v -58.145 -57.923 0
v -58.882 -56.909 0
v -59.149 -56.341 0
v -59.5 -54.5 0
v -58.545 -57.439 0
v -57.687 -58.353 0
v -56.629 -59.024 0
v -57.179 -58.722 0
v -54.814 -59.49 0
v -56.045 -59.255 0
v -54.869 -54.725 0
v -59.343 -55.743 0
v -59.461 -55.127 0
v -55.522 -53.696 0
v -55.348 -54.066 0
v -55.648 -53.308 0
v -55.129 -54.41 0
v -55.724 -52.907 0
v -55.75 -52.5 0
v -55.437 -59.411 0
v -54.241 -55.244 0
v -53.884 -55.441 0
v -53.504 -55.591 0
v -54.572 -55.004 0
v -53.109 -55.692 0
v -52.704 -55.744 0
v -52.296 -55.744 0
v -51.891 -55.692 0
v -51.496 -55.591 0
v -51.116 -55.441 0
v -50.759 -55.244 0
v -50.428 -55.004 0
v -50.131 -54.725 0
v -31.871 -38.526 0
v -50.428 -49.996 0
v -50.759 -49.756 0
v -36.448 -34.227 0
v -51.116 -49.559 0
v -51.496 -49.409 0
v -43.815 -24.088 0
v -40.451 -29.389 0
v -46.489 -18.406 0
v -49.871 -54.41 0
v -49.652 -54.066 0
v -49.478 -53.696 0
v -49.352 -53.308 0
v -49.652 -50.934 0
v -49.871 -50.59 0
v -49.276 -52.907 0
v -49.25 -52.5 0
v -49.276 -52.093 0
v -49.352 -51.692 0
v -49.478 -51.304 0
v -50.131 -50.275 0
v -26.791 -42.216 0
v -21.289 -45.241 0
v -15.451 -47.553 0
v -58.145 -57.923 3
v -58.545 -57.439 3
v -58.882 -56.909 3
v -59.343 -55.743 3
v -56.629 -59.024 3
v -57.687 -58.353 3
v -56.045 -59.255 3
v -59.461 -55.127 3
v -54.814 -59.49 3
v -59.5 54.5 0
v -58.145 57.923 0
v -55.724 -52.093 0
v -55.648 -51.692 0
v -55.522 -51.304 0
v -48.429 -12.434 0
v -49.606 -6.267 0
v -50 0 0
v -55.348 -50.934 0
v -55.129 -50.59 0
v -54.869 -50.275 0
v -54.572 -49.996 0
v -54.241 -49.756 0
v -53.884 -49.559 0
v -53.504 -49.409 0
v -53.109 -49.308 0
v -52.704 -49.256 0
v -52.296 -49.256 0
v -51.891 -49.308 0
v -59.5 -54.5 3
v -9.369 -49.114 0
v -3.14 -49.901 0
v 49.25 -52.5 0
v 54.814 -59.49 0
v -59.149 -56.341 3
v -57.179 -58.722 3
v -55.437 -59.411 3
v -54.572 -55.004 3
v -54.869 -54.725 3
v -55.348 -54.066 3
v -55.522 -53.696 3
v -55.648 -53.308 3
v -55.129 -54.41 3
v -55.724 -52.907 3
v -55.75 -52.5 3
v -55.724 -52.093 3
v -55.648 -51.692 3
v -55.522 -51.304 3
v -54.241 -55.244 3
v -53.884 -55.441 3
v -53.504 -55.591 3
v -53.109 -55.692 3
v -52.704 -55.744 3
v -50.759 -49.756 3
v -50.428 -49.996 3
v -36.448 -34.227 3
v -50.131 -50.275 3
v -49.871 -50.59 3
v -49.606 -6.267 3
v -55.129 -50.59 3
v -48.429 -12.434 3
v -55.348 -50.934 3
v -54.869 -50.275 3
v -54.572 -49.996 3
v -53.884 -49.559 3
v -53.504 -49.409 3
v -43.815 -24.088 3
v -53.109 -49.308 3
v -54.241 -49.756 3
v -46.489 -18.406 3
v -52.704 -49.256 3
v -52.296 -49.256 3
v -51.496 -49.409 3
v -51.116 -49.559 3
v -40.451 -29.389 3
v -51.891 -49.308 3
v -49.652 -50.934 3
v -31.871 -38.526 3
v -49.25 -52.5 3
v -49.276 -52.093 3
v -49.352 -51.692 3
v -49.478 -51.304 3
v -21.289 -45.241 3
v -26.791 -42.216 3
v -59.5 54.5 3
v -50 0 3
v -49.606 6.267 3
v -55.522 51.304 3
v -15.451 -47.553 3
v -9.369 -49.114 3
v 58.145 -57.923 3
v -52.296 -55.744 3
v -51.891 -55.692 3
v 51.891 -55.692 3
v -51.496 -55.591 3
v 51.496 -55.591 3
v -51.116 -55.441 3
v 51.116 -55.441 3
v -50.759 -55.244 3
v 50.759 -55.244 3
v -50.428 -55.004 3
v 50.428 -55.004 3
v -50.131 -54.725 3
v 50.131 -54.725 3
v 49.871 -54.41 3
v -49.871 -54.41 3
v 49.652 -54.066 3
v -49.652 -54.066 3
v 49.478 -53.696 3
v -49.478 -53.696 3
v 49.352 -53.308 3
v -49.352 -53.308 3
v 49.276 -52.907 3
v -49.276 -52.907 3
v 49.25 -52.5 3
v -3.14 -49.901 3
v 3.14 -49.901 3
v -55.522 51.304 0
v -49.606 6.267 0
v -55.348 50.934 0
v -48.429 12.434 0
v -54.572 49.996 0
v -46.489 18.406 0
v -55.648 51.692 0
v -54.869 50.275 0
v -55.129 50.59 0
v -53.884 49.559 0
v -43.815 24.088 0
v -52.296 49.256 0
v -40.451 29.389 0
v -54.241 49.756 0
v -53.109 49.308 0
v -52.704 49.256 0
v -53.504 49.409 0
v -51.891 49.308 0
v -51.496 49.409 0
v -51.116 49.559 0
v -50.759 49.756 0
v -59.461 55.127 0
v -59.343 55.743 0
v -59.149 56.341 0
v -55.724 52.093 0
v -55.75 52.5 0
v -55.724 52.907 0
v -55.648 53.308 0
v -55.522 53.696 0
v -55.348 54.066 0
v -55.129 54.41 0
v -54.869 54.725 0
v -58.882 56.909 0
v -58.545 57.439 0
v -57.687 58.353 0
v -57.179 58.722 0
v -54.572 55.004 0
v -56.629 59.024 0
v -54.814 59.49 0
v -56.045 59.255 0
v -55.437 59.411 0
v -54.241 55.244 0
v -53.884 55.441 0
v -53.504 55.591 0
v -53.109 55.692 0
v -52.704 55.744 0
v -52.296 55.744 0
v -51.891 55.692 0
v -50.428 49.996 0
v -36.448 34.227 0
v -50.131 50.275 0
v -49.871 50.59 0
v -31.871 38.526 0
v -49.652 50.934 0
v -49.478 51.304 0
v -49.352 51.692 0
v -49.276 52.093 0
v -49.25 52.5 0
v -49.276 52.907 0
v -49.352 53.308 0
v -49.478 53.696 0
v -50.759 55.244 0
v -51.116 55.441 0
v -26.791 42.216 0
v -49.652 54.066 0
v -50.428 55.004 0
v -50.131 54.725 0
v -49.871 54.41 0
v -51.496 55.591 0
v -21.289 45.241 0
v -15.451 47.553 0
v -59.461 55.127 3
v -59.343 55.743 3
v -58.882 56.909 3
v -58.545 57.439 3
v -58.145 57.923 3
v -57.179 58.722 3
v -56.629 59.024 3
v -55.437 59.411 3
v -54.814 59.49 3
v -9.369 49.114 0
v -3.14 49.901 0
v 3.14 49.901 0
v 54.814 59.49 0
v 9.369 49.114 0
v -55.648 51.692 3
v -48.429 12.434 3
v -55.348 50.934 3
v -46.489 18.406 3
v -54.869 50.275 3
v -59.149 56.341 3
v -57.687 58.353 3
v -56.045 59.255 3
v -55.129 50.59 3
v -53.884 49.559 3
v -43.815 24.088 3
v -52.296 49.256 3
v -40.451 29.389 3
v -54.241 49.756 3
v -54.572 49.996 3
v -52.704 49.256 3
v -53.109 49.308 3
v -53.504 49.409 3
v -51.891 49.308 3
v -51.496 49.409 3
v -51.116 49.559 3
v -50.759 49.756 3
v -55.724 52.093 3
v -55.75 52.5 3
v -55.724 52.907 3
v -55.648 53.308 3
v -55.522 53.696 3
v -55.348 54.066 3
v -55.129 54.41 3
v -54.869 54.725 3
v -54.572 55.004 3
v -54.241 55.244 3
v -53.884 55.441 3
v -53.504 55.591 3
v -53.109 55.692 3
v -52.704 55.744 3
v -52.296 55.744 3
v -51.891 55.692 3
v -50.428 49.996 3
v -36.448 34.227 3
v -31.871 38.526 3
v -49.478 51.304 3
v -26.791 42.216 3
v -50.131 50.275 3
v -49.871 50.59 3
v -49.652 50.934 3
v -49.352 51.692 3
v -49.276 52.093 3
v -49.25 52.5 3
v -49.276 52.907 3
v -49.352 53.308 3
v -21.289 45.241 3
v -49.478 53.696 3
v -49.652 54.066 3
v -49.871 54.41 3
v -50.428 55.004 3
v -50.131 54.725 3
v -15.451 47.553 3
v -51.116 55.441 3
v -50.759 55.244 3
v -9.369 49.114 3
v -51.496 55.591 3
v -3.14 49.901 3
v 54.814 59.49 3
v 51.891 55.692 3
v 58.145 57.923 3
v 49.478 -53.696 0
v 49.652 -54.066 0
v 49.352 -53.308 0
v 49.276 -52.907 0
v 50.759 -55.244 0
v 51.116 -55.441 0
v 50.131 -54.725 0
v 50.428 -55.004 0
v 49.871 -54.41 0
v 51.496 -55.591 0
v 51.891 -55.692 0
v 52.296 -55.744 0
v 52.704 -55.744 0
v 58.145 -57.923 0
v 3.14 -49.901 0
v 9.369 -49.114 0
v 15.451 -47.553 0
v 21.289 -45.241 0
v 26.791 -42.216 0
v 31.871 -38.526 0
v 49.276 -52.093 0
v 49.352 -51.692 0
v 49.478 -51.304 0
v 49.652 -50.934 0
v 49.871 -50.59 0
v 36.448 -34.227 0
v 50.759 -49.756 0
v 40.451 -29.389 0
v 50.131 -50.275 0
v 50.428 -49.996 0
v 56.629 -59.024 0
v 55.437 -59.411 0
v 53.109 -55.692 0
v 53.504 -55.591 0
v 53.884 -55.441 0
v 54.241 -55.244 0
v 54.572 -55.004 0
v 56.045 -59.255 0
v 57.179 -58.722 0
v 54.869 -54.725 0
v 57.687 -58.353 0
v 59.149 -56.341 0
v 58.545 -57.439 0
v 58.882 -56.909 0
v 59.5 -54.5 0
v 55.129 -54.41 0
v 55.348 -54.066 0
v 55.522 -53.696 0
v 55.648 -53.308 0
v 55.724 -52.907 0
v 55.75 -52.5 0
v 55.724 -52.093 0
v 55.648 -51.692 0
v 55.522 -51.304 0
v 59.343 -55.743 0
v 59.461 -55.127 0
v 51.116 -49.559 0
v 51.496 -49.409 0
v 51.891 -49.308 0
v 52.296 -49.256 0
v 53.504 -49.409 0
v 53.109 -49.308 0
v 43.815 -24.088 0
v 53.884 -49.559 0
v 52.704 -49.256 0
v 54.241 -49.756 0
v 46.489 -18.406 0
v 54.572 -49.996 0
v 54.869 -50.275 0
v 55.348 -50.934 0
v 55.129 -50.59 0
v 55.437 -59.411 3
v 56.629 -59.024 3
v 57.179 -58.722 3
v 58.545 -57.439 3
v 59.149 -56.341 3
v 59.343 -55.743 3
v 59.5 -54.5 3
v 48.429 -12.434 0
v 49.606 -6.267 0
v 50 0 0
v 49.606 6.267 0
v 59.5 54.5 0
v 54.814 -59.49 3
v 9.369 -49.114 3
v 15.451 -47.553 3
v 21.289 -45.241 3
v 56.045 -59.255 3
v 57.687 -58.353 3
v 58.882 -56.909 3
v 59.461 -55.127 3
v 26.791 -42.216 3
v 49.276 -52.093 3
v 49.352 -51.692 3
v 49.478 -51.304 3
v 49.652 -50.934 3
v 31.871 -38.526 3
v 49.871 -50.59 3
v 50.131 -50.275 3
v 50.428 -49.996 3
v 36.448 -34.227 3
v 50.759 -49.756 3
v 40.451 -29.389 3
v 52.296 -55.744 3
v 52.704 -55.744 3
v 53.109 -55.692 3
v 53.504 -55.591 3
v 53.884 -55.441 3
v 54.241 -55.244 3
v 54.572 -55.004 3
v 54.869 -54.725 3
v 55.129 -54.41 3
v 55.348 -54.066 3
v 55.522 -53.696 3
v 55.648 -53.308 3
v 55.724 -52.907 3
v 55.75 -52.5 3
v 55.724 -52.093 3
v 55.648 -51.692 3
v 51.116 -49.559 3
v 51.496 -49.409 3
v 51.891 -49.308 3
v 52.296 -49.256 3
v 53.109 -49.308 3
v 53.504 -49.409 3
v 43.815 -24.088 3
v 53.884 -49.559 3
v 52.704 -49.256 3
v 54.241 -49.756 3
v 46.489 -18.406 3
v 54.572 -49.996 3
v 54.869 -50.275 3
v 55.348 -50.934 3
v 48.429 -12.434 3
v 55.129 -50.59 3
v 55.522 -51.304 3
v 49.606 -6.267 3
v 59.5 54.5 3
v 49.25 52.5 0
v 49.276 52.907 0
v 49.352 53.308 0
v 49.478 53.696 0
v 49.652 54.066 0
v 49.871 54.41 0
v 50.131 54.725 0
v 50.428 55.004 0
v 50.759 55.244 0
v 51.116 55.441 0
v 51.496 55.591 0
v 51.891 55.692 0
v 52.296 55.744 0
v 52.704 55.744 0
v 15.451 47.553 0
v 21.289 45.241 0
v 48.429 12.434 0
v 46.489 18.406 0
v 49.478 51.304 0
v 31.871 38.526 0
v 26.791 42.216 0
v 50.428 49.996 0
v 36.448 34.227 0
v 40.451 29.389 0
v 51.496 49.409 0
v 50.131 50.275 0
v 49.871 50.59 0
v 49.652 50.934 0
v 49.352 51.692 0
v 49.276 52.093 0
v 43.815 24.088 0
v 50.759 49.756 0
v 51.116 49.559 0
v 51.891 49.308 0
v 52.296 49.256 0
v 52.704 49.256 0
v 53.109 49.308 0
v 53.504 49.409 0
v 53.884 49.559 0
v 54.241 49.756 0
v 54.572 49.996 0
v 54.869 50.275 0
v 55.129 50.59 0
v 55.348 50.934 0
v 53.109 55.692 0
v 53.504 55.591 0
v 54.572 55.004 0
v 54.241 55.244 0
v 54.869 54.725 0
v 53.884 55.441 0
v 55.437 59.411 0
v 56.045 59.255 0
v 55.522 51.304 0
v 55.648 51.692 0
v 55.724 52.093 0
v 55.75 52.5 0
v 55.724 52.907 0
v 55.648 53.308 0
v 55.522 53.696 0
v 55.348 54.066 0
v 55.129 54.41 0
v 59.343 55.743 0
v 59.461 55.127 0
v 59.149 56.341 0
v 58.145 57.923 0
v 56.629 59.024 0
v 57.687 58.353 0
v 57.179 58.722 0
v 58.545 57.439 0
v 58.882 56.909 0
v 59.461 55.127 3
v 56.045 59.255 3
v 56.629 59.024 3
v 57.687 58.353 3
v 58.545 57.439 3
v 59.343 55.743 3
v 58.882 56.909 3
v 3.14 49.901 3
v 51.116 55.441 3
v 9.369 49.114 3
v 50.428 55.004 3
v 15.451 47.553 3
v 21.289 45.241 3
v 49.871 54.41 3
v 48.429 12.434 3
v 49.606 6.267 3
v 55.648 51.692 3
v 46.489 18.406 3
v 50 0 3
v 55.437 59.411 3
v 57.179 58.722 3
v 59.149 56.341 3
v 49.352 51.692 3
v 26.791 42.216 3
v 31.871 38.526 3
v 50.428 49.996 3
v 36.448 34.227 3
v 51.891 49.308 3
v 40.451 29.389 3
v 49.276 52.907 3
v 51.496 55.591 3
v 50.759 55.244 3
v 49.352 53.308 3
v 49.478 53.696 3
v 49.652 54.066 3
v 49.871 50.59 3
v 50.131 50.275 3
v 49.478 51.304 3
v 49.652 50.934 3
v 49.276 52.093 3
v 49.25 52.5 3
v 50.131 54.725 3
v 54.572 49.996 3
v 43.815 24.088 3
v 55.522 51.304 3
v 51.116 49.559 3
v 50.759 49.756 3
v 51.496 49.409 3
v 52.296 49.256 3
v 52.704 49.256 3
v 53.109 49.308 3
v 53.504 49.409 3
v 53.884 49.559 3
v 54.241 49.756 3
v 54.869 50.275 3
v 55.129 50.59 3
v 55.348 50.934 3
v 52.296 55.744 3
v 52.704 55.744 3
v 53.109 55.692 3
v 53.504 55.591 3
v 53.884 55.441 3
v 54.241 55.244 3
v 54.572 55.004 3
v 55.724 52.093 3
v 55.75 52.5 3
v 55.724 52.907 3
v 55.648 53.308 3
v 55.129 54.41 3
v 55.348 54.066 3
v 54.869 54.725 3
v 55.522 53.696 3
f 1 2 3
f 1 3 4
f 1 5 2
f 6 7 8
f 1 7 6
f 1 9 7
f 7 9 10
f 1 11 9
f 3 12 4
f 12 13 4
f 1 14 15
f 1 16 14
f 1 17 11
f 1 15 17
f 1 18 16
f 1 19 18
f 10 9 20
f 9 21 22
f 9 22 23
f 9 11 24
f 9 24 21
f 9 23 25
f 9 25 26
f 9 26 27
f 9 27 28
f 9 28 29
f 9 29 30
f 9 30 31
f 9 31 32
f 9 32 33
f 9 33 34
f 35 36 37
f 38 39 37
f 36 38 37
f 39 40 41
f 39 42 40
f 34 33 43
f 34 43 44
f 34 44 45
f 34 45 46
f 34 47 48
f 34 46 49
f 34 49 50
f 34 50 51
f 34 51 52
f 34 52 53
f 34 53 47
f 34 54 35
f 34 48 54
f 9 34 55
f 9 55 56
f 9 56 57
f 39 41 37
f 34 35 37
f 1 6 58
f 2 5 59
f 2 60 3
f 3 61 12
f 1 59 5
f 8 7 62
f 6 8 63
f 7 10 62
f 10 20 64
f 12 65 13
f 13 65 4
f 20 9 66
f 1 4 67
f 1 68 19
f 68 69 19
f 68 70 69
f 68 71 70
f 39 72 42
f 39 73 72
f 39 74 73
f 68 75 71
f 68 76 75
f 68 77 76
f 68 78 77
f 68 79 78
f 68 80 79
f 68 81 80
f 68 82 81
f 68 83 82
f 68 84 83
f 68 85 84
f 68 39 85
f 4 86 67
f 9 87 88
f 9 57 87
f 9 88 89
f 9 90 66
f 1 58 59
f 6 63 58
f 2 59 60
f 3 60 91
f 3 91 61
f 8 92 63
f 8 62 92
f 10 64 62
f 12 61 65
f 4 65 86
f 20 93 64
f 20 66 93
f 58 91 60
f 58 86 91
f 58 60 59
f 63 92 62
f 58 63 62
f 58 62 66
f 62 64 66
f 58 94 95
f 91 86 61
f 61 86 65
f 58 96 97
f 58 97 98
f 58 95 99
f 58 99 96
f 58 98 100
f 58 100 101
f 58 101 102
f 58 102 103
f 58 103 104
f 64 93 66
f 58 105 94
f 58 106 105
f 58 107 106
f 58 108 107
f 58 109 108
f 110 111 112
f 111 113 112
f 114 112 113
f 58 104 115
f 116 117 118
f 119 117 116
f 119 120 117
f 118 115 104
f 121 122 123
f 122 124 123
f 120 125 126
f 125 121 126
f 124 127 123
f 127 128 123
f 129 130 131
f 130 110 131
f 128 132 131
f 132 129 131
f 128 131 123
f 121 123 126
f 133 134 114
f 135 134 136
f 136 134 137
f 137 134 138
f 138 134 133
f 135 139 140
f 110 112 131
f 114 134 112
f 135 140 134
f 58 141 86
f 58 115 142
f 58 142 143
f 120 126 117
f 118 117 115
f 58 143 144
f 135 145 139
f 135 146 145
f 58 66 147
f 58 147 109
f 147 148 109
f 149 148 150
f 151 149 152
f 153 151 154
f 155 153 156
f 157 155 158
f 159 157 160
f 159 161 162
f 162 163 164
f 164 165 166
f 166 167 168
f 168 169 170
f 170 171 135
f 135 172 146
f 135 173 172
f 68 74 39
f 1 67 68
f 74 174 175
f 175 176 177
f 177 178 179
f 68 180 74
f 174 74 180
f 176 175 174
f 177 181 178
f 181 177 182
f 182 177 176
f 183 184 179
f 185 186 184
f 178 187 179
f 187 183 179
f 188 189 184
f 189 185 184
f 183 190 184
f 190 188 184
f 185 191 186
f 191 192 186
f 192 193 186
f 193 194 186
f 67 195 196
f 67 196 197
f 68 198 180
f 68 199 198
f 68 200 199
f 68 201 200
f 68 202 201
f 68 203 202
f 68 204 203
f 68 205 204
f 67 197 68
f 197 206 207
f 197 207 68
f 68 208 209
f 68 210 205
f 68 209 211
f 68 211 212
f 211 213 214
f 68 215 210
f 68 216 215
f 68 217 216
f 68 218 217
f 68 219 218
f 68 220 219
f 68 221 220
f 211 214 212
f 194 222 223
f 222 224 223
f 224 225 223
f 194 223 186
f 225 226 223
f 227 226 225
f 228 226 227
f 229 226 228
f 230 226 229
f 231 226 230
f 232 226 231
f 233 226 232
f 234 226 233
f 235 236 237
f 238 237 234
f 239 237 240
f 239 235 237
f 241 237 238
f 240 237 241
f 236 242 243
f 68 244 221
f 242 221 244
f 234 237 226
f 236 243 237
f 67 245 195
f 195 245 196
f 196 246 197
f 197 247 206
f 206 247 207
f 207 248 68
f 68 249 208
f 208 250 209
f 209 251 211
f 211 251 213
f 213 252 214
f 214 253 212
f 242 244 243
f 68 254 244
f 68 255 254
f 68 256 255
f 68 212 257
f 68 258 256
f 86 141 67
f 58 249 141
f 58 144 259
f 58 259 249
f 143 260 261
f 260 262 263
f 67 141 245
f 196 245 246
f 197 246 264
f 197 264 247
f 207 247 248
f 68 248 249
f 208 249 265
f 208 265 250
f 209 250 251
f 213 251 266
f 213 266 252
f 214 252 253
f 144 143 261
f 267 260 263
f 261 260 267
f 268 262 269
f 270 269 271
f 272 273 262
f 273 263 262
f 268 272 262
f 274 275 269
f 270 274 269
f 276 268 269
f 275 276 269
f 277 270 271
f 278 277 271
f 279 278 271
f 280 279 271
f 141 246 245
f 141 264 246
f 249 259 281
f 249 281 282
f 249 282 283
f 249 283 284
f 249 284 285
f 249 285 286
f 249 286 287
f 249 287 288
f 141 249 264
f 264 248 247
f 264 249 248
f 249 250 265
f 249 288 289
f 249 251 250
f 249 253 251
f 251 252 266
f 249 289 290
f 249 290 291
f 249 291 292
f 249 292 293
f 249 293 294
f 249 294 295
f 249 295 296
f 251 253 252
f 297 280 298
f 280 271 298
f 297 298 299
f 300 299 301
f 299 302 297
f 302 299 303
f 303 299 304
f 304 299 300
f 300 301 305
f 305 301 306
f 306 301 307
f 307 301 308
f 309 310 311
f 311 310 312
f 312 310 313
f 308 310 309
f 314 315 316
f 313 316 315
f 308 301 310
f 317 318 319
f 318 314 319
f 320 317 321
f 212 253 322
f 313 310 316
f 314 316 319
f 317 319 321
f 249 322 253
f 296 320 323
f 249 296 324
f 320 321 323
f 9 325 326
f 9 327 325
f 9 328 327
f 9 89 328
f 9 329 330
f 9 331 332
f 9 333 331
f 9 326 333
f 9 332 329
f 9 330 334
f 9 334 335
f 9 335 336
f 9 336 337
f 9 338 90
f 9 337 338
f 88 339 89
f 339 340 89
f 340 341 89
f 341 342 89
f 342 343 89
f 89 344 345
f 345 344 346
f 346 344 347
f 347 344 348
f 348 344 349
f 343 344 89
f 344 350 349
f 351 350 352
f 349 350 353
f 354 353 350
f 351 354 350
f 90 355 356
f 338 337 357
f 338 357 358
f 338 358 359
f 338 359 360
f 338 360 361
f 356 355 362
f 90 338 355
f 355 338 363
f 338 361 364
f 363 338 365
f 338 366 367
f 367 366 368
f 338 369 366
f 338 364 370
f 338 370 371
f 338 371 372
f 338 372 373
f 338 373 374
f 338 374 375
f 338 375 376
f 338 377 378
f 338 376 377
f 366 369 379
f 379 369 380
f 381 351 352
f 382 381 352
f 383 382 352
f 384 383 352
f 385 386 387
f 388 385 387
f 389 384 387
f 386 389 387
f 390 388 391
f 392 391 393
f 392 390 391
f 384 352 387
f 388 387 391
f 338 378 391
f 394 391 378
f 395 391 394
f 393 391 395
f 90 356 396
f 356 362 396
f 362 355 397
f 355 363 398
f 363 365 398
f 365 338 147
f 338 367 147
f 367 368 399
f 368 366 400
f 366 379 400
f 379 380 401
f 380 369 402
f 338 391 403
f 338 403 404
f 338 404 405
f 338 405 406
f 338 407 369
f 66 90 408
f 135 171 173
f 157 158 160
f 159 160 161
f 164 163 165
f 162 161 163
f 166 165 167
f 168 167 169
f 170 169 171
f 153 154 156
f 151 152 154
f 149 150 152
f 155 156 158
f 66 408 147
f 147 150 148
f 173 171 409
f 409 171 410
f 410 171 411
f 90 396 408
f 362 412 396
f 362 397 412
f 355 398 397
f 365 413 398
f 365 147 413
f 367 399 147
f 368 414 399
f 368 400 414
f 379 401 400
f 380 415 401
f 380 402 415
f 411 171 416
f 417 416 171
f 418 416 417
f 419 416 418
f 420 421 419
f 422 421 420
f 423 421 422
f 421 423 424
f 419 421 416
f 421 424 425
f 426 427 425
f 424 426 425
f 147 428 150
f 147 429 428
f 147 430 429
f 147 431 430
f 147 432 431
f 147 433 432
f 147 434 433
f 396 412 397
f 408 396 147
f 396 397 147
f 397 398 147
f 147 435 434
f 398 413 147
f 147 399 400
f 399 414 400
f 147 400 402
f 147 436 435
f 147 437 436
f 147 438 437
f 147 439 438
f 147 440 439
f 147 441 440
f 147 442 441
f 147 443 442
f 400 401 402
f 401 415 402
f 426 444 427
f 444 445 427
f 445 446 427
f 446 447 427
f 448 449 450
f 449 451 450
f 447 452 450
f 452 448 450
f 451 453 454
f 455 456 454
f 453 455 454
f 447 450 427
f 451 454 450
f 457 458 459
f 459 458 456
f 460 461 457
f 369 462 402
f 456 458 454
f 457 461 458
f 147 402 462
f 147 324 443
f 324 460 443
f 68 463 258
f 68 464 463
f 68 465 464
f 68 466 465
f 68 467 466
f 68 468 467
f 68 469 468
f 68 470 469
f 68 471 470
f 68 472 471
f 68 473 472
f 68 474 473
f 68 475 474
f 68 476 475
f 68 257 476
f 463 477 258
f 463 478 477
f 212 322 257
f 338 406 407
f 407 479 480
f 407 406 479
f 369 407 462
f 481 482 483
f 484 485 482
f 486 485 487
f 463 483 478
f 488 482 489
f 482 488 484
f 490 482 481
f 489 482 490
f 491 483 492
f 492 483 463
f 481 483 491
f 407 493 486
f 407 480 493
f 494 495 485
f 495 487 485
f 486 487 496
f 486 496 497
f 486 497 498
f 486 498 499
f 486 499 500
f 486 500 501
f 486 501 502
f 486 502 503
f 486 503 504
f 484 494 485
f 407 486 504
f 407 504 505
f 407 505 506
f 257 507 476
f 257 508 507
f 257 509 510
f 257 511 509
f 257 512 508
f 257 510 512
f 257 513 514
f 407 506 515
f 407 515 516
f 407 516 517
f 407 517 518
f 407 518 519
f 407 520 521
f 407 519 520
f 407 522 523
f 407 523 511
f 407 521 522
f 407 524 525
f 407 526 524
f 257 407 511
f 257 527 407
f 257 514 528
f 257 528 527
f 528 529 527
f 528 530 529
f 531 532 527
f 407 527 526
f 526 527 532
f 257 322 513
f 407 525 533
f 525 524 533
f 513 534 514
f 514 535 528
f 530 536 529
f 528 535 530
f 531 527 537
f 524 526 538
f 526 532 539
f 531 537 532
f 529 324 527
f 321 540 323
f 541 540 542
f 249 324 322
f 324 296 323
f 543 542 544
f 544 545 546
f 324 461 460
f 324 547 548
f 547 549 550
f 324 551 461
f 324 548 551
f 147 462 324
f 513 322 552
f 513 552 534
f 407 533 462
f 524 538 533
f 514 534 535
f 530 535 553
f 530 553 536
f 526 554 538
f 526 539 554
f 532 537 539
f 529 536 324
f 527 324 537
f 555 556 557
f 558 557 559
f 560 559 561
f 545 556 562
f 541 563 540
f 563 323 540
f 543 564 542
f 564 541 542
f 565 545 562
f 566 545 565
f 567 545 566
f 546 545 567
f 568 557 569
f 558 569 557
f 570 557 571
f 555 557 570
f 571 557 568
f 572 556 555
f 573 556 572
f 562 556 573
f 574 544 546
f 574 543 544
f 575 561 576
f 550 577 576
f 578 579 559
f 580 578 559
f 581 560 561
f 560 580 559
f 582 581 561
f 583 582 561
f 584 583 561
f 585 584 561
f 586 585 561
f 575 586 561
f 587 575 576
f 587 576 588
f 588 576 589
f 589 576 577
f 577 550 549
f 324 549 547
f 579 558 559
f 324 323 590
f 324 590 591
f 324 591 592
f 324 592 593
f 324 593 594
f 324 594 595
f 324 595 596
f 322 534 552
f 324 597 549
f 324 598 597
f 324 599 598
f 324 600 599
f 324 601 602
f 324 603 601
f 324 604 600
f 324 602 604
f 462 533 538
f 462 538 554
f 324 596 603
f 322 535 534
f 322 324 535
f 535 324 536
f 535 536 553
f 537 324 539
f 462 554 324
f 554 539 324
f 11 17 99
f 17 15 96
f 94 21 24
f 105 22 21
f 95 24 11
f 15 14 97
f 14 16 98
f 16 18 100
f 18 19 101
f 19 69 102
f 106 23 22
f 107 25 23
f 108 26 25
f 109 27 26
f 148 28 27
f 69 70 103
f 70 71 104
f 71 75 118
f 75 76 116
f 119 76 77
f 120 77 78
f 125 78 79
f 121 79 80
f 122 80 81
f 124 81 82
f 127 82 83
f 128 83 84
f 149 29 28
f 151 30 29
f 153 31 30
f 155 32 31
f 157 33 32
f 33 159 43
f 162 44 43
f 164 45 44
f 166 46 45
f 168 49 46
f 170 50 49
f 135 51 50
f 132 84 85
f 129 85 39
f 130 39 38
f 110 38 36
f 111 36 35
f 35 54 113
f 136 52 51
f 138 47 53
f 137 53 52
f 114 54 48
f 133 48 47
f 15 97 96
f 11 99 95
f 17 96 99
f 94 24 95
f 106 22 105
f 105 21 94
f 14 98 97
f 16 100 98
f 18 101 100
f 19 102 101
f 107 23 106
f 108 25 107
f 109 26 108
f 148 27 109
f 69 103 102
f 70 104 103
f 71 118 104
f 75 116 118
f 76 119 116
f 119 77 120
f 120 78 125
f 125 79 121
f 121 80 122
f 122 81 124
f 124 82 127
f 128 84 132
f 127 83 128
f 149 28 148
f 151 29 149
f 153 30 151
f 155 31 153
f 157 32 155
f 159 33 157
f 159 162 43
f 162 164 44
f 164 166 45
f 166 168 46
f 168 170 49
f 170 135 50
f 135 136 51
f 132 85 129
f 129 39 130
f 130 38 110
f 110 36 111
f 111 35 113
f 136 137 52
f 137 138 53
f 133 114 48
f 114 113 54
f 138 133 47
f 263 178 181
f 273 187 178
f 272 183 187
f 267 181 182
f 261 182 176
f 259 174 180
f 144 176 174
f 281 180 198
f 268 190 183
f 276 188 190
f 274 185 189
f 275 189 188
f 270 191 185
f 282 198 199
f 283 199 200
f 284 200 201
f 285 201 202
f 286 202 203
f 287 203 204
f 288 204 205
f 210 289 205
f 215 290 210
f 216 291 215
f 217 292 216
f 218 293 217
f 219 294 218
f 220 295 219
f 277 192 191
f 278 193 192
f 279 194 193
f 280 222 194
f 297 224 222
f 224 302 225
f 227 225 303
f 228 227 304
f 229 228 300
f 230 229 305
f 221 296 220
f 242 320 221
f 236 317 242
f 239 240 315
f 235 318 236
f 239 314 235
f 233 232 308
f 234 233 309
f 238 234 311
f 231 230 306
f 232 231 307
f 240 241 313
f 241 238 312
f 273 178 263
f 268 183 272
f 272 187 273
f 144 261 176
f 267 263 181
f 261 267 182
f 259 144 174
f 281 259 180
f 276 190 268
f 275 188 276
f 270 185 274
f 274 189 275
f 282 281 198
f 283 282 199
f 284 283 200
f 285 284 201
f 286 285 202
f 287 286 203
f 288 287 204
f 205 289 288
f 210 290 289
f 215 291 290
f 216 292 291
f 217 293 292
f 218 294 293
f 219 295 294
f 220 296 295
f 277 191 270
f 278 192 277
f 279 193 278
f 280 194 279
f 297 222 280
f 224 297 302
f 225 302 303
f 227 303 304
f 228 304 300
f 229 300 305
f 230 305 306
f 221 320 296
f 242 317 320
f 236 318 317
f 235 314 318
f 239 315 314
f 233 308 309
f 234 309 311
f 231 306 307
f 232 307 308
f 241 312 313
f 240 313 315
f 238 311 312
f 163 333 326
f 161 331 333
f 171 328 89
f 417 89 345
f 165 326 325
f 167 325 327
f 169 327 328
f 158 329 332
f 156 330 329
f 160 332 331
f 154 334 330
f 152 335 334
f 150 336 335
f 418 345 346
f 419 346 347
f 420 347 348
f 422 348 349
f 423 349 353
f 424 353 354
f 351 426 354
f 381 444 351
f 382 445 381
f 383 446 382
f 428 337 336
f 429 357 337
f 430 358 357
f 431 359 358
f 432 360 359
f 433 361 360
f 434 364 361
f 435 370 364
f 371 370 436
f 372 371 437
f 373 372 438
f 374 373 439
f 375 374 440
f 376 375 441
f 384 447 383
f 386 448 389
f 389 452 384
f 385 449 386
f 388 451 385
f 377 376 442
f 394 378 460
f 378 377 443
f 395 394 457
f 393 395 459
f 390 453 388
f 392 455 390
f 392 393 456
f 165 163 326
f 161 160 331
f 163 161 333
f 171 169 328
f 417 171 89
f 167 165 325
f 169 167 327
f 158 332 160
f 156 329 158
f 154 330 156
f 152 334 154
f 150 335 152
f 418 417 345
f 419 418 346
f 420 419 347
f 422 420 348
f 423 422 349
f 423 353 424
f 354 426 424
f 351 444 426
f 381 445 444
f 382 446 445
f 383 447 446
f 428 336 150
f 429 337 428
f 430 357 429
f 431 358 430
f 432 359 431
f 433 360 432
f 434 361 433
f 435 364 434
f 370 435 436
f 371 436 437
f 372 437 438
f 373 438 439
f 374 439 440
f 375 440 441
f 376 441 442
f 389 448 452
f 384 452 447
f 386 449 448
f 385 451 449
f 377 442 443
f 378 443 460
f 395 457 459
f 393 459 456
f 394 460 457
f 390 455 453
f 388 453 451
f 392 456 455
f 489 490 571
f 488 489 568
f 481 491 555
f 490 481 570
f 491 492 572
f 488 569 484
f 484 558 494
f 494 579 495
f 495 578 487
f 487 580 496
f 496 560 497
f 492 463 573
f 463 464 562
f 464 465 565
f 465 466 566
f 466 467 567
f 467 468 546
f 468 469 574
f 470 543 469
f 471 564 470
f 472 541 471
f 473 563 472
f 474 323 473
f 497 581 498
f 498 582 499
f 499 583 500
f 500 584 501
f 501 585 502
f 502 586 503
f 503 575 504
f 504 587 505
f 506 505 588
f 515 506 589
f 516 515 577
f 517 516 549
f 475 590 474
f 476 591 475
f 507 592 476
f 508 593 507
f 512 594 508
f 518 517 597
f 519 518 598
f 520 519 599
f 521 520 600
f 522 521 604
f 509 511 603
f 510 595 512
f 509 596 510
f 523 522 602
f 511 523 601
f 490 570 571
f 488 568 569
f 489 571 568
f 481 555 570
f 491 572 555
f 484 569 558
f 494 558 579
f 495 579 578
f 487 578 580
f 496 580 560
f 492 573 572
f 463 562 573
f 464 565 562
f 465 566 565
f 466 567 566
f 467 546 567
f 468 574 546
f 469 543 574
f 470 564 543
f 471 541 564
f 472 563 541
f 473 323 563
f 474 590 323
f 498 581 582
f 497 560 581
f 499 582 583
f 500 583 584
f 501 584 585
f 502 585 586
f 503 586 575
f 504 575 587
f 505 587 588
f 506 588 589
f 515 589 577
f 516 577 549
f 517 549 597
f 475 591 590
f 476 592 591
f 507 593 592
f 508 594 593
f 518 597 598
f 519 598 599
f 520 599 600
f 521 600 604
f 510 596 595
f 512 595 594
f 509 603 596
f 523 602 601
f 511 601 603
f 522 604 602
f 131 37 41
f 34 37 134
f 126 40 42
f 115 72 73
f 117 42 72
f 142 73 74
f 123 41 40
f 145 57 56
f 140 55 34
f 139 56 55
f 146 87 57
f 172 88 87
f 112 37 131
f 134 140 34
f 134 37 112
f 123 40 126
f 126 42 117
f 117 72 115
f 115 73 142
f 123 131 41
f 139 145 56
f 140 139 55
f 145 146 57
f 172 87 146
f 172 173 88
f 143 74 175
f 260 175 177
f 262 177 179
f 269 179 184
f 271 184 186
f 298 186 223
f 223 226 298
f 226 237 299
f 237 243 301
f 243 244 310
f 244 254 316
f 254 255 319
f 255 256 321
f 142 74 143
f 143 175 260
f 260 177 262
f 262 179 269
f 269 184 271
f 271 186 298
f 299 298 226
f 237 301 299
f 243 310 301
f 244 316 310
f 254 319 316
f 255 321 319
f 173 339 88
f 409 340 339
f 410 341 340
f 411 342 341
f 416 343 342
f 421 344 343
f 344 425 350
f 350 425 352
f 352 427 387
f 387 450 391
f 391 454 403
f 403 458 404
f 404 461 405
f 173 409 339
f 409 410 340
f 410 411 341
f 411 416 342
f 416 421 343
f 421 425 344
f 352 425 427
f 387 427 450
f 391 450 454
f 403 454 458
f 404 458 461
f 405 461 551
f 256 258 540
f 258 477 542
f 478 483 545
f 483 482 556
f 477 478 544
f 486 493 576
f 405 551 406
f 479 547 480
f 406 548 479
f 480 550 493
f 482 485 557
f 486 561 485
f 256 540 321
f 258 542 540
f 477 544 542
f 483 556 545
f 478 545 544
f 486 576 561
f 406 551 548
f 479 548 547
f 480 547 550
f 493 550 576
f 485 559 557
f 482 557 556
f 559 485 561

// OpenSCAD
$fn = 50;

difference() {
	union() {
		hull() {
			translate(v = [-54.5, 54.5, 0]) {
				cylinder(h = 3, r = 5);
			}
			translate(v = [54.5, 54.5, 0]) {
				cylinder(h = 3, r = 5);
			}
			translate(v = [-54.5, -54.5, 0]) {
				cylinder(h = 3, r = 5);
			}
			translate(v = [54.5, -54.5, 0]) {
				cylinder(h = 3, r = 5);
			}
		}
	}
	union() {
		translate(v = [-52.5, -52.5, -100.0]) {
			cylinder(h = 200, r = 3.25);
		}
		translate(v = [-52.5, 52.5, -100.0]) {
			cylinder(h = 200, r = 3.25);
		}
		translate(v = [52.5, -52.5, -100.0]) {
			cylinder(h = 200, r = 3.25);
		}
		translate(v = [52.5, 52.5, -100.0]) {
			cylinder(h = 200, r = 3.25);
		}
		translate(v = [-52.5, -52.5, -100.0]) {
			cylinder(h = 200, r = 1.8);
		}
		translate(v = [-52.5, 52.5, -100.0]) {
			cylinder(h = 200, r = 1.8);
		}
		translate(v = [52.5, -52.5, -100.0]) {
			cylinder(h = 200, r = 1.8);
		}
		translate(v = [52.5, 52.5, -100.0]) {
			cylinder(h = 200, r = 1.8);
		}
		cylinder(h = 3, r = 50.0);
	}
}
